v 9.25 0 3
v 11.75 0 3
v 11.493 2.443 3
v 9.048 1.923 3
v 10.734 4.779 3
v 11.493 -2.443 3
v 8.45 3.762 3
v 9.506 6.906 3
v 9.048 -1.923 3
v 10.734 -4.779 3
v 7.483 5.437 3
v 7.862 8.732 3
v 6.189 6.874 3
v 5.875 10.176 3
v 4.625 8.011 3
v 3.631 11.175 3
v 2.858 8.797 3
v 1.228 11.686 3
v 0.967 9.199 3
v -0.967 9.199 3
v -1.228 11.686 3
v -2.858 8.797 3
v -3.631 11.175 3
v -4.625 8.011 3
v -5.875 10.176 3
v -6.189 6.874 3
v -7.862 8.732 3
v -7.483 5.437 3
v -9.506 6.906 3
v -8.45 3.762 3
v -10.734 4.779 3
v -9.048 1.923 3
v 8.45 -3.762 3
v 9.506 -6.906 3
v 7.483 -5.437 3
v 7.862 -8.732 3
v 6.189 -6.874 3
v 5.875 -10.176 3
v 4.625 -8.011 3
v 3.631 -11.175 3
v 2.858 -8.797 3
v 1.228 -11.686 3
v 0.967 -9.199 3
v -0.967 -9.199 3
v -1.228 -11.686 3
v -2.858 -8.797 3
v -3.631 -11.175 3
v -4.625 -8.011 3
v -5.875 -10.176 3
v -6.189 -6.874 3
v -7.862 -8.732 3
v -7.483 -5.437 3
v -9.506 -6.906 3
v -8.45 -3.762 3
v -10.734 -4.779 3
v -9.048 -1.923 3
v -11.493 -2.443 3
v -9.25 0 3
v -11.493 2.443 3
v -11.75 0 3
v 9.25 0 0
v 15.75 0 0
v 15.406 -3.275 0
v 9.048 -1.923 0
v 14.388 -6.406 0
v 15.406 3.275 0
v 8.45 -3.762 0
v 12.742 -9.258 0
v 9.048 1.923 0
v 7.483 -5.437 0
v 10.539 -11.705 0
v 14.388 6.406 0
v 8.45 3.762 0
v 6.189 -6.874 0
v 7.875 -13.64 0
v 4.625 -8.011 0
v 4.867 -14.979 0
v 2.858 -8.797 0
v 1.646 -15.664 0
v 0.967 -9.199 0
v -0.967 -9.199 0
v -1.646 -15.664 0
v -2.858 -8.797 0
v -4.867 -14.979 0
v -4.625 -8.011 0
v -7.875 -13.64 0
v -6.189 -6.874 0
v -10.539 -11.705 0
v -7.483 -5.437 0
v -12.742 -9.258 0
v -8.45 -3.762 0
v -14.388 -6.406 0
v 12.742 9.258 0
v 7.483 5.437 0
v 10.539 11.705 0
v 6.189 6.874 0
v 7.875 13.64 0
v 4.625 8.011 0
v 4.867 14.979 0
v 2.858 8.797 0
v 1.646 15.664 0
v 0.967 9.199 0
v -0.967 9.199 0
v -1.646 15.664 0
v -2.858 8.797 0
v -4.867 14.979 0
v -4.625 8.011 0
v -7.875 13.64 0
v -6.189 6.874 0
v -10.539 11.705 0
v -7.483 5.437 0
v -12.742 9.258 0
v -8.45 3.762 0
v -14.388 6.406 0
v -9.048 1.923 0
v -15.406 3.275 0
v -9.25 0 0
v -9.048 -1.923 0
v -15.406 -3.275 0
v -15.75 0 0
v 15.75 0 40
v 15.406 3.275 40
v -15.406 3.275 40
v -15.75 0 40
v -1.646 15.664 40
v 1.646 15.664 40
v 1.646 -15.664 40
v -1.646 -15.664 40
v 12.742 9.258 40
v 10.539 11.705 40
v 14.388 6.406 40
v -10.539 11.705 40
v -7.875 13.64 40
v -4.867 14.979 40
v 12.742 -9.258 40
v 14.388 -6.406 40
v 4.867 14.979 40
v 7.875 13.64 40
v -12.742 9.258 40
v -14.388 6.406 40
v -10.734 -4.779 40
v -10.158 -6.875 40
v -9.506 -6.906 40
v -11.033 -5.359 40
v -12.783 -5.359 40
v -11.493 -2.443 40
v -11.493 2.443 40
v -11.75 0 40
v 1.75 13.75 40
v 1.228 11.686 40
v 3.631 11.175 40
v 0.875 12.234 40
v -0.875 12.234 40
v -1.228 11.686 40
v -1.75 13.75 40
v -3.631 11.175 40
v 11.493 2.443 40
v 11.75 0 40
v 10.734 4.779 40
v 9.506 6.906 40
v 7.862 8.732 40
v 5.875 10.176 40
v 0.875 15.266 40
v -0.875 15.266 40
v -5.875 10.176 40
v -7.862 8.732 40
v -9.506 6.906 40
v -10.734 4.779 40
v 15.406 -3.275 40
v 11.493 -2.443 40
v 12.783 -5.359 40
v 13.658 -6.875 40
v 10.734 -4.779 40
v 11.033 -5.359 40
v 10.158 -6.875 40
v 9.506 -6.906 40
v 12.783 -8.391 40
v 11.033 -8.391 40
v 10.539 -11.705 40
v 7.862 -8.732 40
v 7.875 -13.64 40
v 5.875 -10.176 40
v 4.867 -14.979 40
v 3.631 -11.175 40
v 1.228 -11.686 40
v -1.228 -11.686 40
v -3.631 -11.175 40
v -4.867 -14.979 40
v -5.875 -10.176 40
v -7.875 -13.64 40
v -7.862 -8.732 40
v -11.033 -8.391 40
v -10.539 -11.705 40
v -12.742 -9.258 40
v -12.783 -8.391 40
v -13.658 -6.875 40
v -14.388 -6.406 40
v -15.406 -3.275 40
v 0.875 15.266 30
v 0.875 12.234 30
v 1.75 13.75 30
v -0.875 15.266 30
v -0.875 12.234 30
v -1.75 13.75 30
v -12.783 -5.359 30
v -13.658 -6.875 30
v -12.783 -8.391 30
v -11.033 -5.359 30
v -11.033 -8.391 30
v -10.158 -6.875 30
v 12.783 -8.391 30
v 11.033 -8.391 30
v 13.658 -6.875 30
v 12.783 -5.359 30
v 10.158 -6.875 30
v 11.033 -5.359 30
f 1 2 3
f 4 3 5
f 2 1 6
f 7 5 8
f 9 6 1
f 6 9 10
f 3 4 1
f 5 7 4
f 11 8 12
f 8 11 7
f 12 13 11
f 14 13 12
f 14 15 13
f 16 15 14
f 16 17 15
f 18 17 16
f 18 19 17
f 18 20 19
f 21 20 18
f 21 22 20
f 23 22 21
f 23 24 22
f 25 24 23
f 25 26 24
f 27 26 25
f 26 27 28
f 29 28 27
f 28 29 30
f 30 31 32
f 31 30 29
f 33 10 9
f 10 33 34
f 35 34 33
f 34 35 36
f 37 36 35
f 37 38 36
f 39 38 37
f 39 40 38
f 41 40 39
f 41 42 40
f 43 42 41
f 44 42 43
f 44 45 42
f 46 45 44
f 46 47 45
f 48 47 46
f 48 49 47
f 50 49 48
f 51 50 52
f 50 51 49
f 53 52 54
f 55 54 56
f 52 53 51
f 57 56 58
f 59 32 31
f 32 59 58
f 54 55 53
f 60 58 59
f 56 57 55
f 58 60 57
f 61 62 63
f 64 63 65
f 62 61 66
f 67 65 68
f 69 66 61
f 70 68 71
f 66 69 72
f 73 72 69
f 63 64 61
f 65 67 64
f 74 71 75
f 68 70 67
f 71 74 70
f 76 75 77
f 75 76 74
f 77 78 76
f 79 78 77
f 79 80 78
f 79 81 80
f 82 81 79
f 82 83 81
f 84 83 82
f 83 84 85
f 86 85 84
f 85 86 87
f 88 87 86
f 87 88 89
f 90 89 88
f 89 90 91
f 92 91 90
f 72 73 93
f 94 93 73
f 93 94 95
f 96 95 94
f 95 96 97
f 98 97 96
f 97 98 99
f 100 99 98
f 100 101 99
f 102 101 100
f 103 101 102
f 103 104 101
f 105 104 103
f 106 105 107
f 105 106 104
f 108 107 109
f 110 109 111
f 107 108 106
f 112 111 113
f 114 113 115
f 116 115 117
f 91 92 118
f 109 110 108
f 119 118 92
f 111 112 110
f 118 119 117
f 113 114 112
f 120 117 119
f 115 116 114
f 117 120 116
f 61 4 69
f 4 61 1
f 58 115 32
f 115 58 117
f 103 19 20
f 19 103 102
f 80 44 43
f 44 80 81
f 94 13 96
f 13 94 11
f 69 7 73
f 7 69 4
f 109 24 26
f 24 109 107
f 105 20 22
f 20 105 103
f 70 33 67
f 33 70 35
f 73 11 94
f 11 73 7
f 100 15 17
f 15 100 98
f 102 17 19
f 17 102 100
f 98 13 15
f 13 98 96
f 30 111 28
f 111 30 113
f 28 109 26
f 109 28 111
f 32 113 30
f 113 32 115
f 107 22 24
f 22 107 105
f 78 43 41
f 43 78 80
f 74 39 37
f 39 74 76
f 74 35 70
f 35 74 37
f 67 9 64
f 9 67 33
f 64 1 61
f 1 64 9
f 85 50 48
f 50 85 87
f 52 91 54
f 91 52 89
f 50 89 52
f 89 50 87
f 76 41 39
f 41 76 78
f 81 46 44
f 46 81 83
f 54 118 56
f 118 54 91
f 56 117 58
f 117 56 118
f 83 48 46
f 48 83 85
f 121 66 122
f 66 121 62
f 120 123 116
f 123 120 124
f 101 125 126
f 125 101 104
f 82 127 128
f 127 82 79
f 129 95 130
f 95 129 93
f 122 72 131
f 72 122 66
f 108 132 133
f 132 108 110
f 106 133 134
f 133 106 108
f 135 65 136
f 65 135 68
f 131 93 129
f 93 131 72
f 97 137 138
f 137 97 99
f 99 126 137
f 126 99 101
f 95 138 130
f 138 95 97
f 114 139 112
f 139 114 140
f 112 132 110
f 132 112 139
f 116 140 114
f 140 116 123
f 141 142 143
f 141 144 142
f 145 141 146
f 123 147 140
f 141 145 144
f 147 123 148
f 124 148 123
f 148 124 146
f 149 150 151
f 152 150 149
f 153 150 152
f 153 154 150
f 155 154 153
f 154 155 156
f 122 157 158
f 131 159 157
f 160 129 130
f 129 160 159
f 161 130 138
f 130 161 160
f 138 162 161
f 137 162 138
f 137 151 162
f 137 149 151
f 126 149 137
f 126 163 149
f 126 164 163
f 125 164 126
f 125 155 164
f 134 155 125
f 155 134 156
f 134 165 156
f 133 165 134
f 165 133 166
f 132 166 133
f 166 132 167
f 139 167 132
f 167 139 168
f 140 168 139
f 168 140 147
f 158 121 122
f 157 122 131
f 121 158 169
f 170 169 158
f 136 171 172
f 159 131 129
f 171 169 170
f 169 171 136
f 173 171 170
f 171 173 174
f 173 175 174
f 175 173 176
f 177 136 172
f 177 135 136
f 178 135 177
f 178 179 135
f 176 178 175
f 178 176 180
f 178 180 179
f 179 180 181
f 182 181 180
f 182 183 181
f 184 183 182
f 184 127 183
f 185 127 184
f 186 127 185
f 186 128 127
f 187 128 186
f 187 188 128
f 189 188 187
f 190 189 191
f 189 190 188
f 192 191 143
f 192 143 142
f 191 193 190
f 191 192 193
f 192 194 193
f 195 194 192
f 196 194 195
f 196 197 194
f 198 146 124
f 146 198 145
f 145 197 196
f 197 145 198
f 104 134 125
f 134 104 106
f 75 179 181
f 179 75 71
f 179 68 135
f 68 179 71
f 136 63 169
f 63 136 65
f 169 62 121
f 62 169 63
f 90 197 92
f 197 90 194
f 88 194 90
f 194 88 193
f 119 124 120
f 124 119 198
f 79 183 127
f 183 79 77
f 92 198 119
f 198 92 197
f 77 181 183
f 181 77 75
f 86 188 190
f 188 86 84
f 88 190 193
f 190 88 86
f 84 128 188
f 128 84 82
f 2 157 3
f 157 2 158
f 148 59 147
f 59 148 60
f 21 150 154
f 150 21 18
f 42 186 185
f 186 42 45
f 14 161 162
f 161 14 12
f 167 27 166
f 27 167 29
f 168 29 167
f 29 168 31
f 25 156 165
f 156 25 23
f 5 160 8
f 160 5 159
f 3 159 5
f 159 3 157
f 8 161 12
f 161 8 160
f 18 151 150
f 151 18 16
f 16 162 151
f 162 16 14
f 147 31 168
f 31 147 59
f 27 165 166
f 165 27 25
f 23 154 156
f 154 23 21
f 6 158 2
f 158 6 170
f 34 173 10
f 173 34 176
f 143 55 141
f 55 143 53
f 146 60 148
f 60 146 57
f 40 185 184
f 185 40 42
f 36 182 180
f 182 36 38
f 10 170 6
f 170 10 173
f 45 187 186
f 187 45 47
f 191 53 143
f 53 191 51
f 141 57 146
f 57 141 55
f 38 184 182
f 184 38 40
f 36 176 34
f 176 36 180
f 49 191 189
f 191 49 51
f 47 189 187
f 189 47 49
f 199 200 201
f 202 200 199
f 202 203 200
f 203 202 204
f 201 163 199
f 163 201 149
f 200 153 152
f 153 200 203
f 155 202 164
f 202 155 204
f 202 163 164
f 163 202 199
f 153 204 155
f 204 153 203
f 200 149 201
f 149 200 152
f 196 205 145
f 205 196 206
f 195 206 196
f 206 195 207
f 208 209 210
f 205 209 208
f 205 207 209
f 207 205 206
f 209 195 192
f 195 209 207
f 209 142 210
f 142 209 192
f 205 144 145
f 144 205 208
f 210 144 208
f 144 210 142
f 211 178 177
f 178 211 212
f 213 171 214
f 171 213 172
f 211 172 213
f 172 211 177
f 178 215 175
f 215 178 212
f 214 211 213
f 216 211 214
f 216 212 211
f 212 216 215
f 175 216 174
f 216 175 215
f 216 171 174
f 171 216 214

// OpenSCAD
difference() {
	union() {
		difference() {
			cylinder(d = 27.5000000000, h = 3);
			translate(v = [0, 0, -1.5000000000]) {
				cylinder(d = 18.5000000000, h = 6);
			}
		}
		difference() {
			cylinder(d = 31.5000000000, h = 40);
			translate(v = [0, 0, -20.0000000000]) {
				cylinder(d = 23.5000000000, h = 80);
			}
		}
	}
	translate(v = [0, 0, 30]) {
		union() {
			translate(v = [0, 13.7500000000, 0]) {
				cylinder(d = 3.5000000000, h = 10);
			}
			rotate(a = [0, 0, 120]) {
				translate(v = [0, 13.7500000000, 0]) {
					cylinder(d = 3.5000000000, h = 10);
				}
			}
			rotate(a = [0, 0, 240]) {
				translate(v = [0, 13.7500000000, 0]) {
					cylinder(d = 3.5000000000, h = 10);
				}
			}
		}
	}
}
